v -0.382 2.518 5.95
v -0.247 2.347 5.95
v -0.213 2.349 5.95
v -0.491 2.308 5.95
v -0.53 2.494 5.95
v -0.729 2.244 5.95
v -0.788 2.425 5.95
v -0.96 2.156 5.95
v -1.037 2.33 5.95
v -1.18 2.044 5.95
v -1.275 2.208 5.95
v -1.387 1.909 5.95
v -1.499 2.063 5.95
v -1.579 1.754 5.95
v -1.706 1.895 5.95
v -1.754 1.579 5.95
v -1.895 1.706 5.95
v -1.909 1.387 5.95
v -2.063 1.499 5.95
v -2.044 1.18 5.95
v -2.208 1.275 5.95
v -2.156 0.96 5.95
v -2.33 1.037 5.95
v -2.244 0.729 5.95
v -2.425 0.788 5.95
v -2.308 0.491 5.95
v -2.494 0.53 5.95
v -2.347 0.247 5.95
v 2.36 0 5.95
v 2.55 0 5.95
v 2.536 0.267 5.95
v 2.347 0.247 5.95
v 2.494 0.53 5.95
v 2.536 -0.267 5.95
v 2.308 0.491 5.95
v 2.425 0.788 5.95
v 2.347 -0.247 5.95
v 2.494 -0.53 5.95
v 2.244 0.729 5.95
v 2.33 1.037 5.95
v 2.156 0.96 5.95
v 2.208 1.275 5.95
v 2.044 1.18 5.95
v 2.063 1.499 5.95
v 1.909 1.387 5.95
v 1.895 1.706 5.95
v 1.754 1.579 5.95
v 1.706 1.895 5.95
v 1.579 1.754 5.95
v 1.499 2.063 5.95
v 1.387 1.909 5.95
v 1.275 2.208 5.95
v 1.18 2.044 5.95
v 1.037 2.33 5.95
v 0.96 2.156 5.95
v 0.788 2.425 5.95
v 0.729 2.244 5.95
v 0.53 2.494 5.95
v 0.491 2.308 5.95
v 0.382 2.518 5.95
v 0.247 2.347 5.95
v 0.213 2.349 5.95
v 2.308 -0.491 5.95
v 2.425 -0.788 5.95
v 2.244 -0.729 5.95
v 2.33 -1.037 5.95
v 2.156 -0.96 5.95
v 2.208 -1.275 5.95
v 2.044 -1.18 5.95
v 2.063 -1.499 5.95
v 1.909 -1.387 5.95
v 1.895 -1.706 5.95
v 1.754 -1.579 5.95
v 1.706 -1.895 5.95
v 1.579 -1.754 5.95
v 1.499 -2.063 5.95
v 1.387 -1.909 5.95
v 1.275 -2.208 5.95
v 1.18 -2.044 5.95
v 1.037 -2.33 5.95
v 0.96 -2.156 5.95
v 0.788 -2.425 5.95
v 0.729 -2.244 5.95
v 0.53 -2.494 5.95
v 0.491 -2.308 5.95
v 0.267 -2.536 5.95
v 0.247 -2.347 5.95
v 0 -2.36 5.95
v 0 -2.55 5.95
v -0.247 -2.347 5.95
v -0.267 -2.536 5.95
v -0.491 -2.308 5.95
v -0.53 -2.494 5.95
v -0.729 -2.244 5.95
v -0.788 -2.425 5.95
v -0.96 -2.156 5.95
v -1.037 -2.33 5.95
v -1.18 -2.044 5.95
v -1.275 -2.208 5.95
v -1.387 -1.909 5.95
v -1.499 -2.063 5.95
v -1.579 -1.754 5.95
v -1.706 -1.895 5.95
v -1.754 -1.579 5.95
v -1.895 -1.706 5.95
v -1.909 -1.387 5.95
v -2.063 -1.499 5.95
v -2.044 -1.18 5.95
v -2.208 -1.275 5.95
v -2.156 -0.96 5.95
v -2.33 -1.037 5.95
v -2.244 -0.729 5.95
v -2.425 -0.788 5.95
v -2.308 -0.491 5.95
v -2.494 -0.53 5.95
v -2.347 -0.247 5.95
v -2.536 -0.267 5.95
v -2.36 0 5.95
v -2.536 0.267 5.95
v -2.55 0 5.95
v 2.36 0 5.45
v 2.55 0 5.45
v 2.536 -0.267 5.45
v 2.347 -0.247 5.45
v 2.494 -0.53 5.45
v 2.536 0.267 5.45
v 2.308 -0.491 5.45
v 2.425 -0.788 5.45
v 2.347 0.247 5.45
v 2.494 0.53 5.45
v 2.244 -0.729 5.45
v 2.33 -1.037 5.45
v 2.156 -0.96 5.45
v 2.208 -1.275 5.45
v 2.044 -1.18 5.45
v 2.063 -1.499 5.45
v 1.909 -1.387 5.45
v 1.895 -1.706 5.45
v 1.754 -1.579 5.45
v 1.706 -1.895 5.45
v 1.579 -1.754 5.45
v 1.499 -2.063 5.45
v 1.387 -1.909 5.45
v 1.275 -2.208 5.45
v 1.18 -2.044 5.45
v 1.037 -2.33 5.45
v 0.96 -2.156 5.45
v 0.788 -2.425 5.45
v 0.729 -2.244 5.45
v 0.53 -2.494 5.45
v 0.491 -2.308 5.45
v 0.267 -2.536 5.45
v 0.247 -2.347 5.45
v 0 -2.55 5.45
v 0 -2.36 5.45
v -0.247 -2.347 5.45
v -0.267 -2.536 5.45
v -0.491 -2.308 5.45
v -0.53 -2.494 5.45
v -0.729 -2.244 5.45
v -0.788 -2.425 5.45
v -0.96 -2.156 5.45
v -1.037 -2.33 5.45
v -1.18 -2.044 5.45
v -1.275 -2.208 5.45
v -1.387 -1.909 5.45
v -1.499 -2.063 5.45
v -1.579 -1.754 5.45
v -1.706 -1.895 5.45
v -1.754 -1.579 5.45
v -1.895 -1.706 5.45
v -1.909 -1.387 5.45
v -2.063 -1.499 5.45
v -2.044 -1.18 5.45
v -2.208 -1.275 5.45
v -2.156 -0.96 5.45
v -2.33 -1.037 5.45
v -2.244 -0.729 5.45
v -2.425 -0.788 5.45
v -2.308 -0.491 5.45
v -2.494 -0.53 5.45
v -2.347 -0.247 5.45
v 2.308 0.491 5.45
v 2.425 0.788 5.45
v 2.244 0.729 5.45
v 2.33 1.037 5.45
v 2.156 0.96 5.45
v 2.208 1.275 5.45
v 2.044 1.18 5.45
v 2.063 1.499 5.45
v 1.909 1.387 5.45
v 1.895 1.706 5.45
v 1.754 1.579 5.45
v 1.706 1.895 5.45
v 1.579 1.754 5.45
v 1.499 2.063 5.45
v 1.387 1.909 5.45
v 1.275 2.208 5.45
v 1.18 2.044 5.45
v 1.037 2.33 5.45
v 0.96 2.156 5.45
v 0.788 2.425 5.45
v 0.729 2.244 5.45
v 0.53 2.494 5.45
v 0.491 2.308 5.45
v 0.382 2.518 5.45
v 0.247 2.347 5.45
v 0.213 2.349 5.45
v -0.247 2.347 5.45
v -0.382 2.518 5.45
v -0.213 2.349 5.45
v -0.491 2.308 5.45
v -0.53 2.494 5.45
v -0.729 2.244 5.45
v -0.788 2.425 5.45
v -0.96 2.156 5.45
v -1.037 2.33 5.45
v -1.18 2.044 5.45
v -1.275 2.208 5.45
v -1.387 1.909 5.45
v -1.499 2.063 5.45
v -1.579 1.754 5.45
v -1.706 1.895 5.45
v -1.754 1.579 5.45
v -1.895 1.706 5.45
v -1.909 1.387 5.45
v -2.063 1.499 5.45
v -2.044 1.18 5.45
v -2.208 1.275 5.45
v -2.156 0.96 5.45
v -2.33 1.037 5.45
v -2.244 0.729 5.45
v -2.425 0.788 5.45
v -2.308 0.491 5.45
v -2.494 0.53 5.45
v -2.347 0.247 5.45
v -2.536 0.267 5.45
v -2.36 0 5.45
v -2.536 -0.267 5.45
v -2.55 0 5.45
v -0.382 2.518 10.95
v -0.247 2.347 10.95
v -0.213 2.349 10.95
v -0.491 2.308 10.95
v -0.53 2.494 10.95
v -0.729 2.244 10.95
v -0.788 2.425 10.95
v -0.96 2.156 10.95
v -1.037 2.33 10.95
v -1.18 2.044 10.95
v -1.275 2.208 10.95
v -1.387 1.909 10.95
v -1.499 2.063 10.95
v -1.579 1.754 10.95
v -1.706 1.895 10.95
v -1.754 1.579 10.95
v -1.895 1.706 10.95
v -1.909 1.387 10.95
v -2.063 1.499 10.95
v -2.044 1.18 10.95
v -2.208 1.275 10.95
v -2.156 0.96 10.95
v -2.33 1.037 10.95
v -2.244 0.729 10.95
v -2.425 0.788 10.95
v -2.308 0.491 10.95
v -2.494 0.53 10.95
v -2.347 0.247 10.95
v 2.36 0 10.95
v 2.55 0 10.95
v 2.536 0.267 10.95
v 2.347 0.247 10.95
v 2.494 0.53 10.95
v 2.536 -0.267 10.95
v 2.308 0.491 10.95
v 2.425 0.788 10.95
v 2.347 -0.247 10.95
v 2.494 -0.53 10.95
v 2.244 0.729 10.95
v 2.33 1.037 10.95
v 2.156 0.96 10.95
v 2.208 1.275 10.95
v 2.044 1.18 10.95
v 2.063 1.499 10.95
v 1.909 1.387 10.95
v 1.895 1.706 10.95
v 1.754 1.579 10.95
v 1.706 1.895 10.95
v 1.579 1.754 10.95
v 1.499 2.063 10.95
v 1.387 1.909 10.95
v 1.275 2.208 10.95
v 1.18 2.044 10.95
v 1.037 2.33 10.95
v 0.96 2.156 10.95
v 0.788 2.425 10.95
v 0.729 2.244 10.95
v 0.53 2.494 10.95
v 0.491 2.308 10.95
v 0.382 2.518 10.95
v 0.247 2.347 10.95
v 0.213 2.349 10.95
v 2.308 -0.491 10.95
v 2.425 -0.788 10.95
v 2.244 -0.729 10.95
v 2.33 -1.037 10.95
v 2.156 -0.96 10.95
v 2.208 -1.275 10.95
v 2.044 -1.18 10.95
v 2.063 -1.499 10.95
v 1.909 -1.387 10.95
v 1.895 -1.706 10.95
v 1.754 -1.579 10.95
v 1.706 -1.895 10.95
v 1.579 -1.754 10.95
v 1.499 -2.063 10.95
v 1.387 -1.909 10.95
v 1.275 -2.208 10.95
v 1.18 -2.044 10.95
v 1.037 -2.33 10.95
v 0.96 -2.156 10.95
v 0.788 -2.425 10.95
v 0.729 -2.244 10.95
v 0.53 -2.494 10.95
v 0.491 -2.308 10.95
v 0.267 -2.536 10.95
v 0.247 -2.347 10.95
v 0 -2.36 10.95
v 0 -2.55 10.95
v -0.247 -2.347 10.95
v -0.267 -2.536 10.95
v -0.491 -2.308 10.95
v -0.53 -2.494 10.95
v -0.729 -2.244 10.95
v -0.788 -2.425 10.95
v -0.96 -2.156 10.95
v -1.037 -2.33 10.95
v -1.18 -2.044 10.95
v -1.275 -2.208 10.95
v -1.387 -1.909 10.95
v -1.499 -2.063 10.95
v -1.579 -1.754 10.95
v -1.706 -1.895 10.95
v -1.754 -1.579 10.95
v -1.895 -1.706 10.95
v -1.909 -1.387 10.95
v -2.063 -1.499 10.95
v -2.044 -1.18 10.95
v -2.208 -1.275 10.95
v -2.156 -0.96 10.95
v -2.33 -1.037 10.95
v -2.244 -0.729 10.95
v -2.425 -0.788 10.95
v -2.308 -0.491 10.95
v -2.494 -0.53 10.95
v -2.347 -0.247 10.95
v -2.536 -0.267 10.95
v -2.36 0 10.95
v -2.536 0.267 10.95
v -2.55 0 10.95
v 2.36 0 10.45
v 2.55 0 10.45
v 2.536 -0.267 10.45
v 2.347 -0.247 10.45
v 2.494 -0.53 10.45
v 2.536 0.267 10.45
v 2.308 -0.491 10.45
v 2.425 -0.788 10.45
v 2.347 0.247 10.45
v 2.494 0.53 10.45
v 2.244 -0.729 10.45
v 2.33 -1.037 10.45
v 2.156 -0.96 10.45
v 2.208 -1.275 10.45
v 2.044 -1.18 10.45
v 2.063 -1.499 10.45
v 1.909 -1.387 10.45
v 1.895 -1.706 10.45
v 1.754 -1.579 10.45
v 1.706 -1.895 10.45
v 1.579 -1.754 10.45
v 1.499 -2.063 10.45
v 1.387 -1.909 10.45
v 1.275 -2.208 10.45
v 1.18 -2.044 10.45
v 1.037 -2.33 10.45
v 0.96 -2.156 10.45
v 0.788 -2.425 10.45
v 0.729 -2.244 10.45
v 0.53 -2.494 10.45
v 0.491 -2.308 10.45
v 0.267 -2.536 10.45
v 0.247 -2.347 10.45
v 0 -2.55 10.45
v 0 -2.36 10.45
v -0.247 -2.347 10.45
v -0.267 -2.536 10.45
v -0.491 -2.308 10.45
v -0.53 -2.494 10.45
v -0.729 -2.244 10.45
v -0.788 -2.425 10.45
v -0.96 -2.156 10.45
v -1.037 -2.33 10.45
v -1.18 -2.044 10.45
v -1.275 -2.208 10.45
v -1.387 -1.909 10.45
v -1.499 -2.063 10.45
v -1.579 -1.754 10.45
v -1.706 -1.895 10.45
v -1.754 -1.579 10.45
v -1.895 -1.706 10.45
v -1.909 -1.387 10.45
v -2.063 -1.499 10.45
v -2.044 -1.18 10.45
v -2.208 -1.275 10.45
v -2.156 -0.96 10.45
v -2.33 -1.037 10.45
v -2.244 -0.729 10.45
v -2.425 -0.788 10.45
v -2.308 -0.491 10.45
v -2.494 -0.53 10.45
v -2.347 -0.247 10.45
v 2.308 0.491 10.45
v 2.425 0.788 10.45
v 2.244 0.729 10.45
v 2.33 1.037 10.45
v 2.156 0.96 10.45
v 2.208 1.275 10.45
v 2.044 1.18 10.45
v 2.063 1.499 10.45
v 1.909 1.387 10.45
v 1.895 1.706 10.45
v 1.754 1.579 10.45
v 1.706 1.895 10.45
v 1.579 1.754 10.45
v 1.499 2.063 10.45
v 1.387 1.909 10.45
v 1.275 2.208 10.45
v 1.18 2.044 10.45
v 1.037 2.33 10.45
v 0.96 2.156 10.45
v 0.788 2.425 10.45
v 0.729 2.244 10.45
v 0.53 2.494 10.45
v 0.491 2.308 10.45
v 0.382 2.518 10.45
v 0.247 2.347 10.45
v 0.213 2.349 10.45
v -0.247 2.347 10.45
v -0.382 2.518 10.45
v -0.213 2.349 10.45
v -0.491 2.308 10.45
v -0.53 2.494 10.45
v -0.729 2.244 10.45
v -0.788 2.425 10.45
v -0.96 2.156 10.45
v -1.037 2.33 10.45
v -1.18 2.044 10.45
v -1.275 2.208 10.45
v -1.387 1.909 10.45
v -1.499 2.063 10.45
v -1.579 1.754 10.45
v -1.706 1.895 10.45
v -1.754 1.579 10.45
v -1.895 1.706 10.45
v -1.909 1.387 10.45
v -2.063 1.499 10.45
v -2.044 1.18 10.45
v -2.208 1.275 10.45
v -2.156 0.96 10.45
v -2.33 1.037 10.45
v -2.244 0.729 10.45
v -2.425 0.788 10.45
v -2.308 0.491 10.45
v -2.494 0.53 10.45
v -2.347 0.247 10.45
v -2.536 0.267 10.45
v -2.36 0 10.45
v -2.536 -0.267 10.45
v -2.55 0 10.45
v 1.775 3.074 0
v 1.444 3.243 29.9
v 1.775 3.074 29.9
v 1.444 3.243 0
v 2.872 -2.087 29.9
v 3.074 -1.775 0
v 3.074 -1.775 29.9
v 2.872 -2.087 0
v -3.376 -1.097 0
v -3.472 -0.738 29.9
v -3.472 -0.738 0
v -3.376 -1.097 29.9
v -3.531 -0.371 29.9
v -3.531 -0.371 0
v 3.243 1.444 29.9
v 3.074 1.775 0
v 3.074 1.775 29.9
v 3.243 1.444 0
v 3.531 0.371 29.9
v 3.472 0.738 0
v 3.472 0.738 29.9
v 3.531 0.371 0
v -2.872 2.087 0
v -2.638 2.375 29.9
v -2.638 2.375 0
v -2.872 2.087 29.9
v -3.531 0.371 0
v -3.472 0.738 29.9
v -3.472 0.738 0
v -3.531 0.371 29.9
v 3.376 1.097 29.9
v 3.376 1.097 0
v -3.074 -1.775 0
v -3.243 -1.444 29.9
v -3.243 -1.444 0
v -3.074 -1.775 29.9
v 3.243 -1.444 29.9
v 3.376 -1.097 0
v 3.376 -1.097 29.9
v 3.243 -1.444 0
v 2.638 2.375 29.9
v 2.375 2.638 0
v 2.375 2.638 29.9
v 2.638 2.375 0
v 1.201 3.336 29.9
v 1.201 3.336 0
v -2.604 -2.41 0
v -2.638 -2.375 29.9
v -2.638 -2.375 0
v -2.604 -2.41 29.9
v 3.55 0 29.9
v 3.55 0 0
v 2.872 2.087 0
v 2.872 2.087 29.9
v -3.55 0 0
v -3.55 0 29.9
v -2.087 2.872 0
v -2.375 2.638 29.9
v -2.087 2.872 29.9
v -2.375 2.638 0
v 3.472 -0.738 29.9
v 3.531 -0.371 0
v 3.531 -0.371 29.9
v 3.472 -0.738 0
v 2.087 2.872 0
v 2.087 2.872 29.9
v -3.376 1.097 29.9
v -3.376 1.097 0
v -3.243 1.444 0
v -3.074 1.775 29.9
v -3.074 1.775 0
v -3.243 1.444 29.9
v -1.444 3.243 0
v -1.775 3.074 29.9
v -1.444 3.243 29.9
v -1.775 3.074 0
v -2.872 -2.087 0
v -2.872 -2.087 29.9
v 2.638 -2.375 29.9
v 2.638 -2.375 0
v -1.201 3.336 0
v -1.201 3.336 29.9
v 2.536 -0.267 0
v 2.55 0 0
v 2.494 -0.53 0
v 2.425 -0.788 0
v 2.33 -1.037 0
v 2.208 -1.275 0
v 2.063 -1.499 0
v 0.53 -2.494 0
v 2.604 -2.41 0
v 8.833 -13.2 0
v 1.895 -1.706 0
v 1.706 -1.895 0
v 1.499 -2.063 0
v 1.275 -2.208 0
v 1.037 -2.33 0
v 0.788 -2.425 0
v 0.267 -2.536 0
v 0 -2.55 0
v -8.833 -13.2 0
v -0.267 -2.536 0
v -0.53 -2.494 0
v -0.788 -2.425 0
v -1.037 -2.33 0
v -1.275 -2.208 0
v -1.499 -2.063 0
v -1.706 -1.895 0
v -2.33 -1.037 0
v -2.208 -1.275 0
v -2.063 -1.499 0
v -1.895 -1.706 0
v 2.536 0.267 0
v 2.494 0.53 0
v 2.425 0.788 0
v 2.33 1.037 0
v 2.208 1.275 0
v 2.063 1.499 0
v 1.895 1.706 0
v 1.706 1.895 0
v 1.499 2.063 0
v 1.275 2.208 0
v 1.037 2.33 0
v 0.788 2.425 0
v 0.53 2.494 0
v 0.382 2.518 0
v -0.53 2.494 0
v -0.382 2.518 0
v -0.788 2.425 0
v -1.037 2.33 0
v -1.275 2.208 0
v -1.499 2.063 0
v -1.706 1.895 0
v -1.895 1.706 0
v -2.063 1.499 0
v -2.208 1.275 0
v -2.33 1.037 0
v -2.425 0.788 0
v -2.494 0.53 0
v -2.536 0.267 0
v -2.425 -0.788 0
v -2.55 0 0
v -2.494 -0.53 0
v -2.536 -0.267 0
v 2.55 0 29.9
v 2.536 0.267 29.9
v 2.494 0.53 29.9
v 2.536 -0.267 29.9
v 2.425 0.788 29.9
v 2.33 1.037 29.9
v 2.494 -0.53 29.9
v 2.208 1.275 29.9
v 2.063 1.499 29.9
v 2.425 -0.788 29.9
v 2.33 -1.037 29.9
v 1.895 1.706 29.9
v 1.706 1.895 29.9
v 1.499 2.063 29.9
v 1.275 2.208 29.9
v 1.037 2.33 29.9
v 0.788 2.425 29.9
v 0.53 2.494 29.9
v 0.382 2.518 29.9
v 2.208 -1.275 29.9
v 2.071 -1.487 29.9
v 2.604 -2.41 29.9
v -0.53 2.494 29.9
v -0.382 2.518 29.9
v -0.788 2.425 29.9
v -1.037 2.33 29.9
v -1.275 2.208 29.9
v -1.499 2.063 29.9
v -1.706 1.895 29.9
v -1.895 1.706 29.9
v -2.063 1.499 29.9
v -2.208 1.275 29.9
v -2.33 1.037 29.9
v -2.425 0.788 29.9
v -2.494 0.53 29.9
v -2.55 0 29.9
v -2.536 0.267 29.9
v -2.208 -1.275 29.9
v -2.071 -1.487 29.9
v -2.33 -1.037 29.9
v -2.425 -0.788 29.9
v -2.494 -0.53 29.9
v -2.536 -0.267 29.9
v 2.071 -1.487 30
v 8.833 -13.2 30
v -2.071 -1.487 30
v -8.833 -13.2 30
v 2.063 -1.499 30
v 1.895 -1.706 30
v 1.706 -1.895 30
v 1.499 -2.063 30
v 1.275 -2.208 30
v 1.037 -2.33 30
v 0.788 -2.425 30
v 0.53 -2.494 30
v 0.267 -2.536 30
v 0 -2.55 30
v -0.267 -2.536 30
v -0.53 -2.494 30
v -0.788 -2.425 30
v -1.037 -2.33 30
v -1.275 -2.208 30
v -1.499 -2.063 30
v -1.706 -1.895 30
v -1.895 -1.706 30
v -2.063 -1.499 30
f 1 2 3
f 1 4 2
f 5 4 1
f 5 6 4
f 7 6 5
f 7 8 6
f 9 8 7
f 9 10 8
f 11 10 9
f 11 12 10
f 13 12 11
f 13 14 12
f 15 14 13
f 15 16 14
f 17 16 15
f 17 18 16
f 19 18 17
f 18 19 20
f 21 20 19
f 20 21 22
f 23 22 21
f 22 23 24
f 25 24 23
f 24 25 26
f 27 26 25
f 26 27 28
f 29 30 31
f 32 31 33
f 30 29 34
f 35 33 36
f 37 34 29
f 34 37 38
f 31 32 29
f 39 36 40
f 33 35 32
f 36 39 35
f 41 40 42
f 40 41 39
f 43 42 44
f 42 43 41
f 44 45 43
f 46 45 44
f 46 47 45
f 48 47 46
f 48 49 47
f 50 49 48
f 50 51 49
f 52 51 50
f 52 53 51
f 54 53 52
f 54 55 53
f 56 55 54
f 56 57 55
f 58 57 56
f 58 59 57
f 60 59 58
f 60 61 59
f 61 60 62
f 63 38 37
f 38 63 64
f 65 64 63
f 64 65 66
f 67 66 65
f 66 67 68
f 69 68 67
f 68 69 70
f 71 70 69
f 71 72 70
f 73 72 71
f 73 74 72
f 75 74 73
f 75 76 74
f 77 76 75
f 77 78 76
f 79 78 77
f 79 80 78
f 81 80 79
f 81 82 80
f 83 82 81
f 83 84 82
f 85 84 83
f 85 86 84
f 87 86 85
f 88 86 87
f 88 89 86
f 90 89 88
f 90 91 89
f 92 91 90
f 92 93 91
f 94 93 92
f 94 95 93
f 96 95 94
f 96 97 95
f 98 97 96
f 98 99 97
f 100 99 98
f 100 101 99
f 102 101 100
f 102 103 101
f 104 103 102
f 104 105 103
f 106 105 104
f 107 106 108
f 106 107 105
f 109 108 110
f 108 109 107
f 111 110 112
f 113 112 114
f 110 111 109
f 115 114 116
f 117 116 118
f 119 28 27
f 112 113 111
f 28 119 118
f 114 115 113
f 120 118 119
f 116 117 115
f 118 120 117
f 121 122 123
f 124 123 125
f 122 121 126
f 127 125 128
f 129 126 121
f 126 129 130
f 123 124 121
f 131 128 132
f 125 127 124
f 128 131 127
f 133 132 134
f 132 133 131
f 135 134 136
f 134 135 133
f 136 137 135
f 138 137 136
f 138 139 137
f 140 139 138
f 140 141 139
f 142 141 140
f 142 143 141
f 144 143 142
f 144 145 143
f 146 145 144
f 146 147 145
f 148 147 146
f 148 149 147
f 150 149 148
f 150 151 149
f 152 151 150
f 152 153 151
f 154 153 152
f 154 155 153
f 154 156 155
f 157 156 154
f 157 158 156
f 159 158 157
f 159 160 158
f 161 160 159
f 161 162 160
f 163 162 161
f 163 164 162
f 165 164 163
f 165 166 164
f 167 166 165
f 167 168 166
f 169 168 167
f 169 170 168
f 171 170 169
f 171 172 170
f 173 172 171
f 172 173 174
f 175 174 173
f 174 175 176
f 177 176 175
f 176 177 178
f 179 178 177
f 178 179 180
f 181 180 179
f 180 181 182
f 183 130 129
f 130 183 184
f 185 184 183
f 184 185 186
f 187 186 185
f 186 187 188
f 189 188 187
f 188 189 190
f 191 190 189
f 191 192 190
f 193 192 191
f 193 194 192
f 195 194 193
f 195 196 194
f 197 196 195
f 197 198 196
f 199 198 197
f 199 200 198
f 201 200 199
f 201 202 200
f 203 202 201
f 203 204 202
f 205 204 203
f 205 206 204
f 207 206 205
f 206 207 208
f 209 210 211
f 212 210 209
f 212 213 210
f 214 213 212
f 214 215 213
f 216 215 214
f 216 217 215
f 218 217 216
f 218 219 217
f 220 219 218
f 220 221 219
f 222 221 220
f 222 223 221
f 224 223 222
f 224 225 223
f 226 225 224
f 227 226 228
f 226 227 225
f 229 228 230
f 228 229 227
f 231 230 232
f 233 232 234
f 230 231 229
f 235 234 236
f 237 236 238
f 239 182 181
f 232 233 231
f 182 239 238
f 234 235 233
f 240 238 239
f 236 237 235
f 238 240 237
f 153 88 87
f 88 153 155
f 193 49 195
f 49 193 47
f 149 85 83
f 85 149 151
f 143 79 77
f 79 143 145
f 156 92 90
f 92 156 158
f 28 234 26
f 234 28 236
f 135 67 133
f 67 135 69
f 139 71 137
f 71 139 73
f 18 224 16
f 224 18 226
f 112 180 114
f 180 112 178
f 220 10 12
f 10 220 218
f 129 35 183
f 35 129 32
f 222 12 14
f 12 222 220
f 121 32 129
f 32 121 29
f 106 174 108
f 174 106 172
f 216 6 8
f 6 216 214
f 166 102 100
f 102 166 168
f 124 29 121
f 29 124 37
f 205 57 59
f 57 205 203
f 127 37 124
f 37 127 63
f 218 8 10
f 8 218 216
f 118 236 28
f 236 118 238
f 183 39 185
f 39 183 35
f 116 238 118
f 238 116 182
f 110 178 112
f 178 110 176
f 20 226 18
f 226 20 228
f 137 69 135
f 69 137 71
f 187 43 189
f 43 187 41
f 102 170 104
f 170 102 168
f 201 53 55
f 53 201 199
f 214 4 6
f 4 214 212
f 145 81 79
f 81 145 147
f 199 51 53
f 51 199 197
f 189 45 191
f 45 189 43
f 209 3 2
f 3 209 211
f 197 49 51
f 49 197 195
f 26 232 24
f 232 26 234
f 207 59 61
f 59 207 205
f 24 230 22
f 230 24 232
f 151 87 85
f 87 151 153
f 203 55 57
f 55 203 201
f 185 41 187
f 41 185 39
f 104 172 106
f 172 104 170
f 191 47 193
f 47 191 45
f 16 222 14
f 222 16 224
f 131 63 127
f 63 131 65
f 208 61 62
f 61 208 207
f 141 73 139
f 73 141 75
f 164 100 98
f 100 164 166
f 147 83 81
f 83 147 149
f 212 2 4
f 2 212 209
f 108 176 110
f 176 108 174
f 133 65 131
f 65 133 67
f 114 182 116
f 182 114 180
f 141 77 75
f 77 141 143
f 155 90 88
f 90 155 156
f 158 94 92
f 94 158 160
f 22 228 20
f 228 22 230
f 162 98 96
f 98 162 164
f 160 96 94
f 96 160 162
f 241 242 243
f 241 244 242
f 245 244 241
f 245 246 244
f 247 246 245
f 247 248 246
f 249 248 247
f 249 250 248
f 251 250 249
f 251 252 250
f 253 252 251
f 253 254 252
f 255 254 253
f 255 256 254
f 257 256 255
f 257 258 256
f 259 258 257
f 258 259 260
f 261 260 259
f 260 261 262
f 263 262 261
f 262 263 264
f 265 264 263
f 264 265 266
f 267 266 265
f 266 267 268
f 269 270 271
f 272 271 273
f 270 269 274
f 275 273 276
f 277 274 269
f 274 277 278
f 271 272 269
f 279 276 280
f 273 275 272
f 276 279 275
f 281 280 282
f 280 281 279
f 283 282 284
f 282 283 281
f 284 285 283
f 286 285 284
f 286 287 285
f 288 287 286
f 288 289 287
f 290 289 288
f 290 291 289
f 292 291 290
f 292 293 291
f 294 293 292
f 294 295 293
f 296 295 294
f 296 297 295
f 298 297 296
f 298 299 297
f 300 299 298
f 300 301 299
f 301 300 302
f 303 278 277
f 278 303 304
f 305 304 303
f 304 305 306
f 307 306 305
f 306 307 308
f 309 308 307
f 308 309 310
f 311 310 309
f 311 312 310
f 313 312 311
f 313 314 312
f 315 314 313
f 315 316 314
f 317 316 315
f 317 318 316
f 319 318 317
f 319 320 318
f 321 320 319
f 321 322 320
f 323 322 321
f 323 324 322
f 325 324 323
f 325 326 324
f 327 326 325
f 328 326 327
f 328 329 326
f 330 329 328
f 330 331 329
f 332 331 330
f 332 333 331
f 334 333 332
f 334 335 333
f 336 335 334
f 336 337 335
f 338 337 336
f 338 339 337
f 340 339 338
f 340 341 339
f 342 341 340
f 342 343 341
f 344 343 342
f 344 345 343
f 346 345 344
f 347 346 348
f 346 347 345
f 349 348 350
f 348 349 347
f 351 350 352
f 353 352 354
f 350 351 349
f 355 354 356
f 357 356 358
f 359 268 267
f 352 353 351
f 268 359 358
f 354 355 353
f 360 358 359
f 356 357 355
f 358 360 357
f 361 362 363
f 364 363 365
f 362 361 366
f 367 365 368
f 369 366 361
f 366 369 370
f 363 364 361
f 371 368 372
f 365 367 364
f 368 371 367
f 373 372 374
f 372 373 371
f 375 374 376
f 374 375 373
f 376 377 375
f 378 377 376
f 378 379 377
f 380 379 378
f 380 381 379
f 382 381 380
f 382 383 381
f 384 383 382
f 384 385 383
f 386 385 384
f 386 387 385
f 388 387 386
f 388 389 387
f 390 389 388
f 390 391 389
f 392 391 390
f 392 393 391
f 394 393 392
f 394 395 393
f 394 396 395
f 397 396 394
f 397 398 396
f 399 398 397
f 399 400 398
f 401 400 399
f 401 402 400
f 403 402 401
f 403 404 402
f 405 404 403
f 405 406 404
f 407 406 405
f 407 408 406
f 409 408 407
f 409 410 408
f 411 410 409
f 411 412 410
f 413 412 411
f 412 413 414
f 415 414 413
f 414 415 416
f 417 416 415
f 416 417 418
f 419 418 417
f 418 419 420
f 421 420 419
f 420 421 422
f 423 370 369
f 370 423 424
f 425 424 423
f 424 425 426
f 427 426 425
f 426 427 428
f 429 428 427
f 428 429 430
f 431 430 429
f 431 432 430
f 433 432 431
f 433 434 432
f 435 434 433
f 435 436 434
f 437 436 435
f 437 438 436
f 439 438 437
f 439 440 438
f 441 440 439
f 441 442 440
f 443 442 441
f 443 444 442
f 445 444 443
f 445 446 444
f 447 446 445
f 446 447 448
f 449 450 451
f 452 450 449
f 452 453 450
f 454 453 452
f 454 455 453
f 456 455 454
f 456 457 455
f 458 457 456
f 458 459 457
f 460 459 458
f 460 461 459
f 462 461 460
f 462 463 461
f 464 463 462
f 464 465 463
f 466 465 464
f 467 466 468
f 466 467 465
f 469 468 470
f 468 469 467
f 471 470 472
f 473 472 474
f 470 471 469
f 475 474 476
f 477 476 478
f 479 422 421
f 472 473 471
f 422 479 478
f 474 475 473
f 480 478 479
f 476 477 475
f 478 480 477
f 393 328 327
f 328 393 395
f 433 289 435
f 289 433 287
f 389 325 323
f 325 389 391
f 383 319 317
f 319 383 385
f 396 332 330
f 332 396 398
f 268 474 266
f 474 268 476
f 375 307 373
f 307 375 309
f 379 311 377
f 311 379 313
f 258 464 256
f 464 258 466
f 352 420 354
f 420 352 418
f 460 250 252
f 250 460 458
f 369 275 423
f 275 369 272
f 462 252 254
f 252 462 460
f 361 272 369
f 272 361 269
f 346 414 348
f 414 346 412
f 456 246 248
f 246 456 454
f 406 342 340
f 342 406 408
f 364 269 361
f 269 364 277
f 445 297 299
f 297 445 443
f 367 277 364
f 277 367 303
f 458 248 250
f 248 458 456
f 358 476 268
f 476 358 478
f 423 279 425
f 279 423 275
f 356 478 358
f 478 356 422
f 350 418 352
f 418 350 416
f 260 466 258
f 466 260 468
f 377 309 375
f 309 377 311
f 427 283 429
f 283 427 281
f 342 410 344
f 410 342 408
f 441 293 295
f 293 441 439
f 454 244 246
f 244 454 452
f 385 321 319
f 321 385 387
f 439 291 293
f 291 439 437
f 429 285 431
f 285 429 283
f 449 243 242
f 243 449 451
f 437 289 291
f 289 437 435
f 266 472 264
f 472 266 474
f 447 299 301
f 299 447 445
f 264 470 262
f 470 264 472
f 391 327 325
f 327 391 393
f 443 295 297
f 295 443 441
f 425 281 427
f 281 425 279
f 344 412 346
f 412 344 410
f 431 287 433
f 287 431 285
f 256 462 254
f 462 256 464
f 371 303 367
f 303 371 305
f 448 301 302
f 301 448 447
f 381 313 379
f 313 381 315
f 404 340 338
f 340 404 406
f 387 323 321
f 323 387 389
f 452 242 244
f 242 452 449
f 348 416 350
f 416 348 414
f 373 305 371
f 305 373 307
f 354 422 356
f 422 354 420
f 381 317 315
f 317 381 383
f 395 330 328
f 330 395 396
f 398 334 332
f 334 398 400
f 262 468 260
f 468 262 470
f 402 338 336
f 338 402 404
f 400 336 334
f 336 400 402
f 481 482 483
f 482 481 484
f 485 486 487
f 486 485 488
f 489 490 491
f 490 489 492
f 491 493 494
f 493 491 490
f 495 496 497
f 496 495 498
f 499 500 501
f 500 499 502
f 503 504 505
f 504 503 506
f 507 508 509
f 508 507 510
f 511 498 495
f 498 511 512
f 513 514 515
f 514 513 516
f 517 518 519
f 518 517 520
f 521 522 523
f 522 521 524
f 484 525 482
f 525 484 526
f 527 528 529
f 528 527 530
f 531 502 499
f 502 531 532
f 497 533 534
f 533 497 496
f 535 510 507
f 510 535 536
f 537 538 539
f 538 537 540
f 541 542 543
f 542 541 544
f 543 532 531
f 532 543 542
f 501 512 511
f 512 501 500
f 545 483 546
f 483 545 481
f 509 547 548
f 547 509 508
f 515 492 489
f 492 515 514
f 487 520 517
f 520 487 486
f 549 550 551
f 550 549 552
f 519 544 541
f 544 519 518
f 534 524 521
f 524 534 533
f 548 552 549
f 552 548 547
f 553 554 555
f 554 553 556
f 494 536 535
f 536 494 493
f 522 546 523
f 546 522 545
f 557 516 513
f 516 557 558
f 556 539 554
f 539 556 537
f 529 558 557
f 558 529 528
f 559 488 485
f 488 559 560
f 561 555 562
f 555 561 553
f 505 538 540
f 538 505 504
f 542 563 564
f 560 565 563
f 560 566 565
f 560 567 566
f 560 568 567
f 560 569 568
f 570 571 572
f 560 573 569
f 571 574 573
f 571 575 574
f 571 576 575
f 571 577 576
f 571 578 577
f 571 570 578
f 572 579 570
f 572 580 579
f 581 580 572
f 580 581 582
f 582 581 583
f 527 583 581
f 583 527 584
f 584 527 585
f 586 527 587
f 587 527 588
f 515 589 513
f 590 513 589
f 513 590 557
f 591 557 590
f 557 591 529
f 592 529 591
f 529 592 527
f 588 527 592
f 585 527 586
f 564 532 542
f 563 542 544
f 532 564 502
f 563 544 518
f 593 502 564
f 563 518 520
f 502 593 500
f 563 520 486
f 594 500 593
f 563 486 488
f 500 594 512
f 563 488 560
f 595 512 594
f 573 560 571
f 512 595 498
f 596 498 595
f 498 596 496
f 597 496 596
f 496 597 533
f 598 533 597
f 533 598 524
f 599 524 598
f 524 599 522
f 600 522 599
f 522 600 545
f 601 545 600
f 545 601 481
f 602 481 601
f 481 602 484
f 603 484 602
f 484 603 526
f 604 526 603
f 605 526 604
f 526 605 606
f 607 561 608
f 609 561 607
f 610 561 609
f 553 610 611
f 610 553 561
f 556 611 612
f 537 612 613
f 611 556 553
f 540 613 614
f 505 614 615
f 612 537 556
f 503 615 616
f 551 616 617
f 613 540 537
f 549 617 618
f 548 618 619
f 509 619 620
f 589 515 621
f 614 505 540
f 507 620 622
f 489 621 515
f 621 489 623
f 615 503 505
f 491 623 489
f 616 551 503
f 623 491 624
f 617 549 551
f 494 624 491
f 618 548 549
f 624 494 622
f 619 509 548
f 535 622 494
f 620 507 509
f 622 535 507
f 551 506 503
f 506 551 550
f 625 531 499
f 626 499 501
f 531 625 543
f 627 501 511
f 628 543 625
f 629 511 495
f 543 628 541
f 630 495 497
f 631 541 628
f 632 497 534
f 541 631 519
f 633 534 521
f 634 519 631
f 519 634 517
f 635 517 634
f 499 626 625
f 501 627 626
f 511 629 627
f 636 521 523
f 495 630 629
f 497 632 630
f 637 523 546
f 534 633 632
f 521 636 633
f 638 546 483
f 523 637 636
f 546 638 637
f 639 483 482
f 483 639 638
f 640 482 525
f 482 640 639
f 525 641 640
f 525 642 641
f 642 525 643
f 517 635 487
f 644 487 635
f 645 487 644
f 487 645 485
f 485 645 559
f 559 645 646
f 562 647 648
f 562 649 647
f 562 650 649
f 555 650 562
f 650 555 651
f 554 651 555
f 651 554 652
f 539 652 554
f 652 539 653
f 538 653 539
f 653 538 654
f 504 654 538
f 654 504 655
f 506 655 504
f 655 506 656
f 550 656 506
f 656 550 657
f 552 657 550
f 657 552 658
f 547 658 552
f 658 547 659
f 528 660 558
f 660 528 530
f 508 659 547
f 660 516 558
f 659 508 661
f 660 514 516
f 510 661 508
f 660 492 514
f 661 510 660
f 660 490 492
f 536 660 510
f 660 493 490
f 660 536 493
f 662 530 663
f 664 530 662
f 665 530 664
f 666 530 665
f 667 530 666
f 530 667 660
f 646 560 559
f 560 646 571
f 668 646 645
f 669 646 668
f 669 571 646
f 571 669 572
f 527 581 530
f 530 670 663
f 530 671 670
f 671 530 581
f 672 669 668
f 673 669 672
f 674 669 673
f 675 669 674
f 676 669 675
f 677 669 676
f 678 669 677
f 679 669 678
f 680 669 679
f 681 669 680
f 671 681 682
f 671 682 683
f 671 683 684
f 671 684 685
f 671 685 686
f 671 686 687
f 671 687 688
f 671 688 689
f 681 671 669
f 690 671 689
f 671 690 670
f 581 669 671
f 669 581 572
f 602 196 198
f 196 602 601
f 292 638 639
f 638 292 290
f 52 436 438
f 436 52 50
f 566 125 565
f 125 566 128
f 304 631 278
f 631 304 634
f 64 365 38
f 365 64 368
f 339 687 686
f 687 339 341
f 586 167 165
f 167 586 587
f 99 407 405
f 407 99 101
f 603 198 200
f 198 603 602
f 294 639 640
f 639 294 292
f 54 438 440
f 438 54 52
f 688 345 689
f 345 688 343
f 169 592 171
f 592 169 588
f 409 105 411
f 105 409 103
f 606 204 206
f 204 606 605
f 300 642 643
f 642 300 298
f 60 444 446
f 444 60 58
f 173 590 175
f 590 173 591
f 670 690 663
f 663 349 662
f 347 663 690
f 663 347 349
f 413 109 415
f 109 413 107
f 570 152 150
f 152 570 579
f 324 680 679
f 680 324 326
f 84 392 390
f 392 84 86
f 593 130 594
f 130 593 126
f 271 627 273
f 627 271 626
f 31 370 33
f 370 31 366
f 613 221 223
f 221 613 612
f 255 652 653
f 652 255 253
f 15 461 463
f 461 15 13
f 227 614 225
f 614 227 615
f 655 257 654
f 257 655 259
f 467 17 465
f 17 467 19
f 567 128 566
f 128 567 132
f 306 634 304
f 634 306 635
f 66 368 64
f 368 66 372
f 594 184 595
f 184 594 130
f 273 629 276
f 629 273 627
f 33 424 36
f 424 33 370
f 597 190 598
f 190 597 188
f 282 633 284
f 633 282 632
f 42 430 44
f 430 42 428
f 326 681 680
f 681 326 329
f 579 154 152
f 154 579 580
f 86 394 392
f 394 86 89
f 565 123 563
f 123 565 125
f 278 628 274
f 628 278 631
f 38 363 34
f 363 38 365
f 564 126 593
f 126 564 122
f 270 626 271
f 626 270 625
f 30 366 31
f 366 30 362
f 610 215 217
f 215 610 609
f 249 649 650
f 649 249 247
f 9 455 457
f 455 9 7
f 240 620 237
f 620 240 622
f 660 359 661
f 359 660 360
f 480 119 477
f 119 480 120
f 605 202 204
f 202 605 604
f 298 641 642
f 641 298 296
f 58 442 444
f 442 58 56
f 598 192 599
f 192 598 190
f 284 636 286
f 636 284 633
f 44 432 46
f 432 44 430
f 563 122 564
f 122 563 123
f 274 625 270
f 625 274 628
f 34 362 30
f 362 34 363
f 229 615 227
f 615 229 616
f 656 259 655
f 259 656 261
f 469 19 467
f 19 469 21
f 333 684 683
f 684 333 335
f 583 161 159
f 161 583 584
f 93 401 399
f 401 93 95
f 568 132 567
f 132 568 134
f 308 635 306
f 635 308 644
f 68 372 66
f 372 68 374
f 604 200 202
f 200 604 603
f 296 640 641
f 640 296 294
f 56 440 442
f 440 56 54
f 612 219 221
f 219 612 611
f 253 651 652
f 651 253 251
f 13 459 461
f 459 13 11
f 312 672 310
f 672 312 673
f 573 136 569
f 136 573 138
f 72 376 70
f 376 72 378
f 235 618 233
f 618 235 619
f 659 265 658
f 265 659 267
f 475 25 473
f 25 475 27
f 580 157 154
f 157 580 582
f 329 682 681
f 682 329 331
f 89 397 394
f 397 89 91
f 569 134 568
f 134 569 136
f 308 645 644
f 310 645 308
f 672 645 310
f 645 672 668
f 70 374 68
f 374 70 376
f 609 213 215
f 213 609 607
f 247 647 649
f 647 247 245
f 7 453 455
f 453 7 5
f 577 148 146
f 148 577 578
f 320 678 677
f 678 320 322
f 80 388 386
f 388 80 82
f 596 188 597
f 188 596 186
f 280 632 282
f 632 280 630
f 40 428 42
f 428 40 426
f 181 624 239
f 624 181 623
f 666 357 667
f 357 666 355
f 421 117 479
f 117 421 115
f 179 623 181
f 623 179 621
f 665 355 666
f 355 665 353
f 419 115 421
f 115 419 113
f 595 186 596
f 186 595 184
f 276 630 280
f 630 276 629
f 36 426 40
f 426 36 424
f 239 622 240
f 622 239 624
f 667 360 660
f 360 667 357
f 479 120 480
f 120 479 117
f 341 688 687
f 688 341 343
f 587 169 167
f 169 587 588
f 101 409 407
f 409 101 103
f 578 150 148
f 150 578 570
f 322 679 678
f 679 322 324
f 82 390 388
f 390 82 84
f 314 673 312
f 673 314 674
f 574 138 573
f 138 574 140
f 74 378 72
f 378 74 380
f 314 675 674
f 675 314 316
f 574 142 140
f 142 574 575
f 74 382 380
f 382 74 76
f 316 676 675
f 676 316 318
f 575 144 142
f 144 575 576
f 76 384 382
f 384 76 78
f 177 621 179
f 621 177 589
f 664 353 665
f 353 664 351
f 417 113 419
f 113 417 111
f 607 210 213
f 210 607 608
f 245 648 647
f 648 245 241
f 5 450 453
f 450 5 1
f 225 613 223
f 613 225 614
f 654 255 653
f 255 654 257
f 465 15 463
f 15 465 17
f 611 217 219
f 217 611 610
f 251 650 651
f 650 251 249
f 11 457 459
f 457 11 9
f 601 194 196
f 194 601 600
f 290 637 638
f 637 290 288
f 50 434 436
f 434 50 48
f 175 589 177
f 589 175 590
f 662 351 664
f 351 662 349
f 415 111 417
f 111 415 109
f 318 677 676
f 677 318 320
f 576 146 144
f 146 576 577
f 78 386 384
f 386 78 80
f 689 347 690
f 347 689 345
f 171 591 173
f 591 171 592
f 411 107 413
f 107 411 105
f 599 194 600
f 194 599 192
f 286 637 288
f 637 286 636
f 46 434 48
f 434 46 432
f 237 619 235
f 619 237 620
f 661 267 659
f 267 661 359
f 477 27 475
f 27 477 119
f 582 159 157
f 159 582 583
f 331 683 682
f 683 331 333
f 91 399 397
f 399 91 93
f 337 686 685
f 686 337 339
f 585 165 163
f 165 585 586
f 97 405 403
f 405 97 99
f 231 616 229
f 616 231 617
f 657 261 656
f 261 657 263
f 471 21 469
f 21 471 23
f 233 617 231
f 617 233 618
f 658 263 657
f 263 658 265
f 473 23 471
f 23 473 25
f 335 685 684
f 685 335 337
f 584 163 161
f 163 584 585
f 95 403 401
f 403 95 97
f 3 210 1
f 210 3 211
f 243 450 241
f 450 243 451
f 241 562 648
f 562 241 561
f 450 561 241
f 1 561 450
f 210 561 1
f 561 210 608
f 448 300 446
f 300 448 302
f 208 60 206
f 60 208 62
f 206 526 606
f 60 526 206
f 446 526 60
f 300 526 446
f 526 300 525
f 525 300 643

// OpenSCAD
$fn=60;

total_heigth= 30;
inside_core_dia= 5.1;
hypotheneus = sqrt((total_heigth  * total_heigth) * 2);

thick = 2;  // 3 is not flexible


module make_tube(){
    difference() {
        union() 
        {
            cylinder(h = total_heigth-.1, d= inside_core_dia + thick);
            //cube([total_heigth, total_heigth, total_heigth]);
            rotate( [0, 0, 90 ])
            translate([-inside_core_dia-3, 0, total_heigth/2])
            cylinder(h=total_heigth, d = inside_core_dia *4, $fn=3, center=true);
        }
        // punch out
        union() {
            color("RED", 1)

            color("BLUE", 1) 
            cylinder(h = total_heigth, d = inside_core_dia);
        }
    }
}

module make_snap_ring()
{
    inside = 4.72;
    outside = inside + 2;
    thick = .5;
    difference()
    {
        cylinder(d=outside,  h = thick);
        cylinder(d=inside, h = thick);
    }
}

module make_snap_rings()
{
    translate([ 0, 0, 5.45])
    make_snap_ring();
    
    translate([0,0, 10.45])
    make_snap_ring();
}

union()
{
    difference()
    {
        union()
        {
            color("GREEN", .2)
            make_tube();
            make_snap_rings();
        }
        
        // cut a slit along entire length of tube
        color("RED")
        translate([ 0, inside_core_dia/2 + 1, 0])
        rotate([ 0, 0, 45])
        cube([2, 2, total_heigth *2], true);
   }          
}
